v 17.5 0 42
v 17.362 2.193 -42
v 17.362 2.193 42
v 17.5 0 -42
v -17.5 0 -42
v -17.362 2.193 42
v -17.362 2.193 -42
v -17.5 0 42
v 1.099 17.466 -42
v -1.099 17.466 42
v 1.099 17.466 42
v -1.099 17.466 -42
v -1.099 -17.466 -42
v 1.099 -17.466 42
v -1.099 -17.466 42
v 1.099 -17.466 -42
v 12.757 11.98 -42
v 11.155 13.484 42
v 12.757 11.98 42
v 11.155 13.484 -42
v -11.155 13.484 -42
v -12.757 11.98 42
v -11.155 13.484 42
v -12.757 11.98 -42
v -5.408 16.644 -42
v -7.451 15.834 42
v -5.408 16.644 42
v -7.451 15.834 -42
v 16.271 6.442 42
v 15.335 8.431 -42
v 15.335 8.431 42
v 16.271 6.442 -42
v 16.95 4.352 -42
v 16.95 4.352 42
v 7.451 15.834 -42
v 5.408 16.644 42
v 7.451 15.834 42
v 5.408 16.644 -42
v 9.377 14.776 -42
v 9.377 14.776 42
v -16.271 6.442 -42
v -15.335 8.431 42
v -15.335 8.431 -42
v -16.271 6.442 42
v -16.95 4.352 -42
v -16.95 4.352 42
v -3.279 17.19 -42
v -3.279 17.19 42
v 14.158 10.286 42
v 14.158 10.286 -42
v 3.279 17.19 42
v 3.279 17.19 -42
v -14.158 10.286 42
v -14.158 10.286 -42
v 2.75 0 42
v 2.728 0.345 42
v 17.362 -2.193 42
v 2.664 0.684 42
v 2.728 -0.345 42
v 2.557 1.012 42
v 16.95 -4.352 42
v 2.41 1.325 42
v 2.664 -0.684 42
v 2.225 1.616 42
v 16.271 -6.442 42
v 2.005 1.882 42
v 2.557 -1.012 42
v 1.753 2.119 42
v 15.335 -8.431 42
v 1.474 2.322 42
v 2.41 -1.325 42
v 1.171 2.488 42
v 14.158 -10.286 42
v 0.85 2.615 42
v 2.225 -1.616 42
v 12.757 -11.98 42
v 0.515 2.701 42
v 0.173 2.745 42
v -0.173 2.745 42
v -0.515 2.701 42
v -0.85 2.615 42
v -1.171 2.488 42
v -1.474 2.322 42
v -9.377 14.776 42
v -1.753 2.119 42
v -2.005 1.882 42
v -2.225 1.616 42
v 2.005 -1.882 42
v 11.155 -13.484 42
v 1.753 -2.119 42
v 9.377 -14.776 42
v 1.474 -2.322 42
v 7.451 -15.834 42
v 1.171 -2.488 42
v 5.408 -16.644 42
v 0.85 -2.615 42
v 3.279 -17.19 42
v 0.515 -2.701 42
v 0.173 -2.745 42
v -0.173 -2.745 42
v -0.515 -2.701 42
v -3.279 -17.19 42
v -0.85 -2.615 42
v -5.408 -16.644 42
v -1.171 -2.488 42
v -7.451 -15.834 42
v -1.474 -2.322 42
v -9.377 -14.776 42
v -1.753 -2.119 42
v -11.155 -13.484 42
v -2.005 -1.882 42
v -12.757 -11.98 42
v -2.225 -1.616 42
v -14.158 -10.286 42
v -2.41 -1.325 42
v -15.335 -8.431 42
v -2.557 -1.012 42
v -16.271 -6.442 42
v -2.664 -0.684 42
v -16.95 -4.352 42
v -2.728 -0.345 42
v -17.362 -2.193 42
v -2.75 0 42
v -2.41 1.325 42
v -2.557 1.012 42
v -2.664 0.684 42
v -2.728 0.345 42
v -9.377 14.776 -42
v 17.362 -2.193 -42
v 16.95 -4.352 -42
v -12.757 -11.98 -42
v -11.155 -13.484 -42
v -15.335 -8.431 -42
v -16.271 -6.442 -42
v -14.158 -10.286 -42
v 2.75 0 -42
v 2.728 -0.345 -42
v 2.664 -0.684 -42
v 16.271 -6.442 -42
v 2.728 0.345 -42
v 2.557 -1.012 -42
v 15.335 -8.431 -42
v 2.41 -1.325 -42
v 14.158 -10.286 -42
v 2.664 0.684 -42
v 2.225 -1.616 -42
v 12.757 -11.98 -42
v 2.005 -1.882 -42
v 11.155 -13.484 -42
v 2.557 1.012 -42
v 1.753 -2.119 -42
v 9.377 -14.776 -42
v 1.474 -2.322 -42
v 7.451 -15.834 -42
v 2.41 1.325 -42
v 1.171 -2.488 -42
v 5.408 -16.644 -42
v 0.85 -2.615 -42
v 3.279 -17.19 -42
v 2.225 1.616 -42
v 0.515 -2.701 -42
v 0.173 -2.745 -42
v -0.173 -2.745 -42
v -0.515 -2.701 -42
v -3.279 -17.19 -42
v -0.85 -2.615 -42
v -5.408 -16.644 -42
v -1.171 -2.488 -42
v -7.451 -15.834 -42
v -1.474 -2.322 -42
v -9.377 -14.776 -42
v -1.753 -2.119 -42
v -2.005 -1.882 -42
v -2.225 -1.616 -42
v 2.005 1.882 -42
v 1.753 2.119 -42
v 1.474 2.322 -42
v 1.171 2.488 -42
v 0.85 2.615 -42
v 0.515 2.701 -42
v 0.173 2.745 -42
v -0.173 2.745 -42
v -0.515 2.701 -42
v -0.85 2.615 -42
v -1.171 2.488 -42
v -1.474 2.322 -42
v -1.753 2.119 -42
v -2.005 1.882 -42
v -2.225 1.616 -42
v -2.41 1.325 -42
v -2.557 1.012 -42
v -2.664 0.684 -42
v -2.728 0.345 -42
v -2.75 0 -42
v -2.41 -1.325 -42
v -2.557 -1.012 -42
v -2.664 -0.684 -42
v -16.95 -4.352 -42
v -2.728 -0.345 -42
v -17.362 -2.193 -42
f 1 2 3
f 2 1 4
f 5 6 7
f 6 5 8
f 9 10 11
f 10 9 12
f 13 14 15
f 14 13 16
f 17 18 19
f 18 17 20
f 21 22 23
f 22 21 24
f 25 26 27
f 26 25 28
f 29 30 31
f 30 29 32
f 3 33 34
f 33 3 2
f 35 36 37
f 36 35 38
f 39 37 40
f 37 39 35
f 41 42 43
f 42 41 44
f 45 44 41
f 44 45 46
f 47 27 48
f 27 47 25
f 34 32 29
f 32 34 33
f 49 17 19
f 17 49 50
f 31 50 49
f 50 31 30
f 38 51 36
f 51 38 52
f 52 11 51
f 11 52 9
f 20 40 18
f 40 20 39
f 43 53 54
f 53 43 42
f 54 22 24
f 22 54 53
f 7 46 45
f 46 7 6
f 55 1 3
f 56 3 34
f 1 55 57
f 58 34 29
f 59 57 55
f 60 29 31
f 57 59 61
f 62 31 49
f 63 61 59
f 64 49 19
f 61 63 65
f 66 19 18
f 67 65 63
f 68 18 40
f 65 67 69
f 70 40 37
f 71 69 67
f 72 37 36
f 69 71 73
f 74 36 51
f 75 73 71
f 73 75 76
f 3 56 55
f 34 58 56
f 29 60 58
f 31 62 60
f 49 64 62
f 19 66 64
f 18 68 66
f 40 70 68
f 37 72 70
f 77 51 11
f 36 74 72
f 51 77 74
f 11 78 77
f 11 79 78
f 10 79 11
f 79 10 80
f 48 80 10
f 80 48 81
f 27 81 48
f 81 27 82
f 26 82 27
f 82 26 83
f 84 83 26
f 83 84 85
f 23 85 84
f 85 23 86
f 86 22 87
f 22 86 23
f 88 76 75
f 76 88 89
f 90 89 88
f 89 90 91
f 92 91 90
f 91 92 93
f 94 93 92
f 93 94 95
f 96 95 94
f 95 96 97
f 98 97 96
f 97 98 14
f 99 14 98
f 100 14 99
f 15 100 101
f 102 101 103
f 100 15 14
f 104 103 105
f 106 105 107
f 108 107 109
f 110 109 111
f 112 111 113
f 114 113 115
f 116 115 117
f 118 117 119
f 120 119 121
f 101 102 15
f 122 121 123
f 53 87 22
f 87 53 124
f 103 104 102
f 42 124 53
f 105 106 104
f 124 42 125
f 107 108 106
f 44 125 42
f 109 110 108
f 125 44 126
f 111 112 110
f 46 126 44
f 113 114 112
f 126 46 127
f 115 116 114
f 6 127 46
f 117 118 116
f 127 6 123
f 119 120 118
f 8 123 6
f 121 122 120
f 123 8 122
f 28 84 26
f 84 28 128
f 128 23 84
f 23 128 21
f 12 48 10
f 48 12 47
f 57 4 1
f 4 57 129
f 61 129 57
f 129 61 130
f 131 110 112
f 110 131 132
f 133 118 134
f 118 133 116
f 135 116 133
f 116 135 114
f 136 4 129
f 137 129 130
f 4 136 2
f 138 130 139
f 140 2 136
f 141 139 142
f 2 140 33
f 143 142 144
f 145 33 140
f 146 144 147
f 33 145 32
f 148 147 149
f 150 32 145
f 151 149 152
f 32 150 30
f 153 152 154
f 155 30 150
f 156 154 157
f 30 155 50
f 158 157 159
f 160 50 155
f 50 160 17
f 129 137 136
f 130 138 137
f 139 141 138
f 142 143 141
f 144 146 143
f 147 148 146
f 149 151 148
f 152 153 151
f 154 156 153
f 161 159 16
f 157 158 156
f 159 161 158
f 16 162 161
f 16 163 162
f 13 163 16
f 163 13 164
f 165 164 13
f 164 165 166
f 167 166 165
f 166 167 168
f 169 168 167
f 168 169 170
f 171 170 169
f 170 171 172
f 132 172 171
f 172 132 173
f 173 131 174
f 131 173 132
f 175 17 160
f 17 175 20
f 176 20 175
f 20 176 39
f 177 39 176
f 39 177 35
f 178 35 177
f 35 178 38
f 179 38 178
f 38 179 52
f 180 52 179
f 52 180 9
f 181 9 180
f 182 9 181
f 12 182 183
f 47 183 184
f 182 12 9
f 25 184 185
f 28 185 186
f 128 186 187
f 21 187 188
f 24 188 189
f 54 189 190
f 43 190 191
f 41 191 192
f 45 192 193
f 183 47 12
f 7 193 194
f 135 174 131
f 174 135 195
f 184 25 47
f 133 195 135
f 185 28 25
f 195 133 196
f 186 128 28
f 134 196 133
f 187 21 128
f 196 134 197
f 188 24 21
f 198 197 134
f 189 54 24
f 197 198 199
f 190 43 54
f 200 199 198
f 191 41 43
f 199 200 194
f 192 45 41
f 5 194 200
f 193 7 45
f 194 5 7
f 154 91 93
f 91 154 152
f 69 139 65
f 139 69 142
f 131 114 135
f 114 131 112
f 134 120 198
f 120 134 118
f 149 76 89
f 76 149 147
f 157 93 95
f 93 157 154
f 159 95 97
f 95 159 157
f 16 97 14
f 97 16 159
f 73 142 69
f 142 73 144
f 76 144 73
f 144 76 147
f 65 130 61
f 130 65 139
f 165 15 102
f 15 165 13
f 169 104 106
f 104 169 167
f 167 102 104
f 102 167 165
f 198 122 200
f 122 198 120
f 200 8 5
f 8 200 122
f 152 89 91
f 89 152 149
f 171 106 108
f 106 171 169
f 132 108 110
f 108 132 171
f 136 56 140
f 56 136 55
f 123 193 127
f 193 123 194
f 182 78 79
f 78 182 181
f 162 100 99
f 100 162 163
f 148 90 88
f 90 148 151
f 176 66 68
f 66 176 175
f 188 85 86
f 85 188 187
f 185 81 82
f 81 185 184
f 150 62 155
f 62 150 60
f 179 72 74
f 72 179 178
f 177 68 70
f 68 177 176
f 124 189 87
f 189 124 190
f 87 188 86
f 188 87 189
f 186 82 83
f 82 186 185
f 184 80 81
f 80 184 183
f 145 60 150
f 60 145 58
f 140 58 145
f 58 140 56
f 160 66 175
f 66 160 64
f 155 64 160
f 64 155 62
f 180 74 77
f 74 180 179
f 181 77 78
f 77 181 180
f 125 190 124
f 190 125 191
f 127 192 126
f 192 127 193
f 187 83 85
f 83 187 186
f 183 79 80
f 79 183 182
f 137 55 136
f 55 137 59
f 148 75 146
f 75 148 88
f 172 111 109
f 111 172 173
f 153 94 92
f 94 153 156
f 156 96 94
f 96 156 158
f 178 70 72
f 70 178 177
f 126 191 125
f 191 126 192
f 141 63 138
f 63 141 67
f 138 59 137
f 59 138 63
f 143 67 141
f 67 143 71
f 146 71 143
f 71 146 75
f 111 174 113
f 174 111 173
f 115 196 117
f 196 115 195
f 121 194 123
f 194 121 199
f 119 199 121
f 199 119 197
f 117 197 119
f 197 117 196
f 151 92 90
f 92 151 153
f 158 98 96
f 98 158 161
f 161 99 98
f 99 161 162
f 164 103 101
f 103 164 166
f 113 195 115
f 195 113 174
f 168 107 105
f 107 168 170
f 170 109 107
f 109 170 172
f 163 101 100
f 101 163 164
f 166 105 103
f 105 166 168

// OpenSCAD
$fn = 50;


difference() {
	union() {
		translate(v = [0, 0, -42.0000000000]) {
			cylinder(h = 84, r = 17.5000000000);
		}
	}
	union() {
		translate(v = [0, 0, -100.0000000000]) {
			cylinder(h = 200, r = 2.7500000000);
		}
	}
}
